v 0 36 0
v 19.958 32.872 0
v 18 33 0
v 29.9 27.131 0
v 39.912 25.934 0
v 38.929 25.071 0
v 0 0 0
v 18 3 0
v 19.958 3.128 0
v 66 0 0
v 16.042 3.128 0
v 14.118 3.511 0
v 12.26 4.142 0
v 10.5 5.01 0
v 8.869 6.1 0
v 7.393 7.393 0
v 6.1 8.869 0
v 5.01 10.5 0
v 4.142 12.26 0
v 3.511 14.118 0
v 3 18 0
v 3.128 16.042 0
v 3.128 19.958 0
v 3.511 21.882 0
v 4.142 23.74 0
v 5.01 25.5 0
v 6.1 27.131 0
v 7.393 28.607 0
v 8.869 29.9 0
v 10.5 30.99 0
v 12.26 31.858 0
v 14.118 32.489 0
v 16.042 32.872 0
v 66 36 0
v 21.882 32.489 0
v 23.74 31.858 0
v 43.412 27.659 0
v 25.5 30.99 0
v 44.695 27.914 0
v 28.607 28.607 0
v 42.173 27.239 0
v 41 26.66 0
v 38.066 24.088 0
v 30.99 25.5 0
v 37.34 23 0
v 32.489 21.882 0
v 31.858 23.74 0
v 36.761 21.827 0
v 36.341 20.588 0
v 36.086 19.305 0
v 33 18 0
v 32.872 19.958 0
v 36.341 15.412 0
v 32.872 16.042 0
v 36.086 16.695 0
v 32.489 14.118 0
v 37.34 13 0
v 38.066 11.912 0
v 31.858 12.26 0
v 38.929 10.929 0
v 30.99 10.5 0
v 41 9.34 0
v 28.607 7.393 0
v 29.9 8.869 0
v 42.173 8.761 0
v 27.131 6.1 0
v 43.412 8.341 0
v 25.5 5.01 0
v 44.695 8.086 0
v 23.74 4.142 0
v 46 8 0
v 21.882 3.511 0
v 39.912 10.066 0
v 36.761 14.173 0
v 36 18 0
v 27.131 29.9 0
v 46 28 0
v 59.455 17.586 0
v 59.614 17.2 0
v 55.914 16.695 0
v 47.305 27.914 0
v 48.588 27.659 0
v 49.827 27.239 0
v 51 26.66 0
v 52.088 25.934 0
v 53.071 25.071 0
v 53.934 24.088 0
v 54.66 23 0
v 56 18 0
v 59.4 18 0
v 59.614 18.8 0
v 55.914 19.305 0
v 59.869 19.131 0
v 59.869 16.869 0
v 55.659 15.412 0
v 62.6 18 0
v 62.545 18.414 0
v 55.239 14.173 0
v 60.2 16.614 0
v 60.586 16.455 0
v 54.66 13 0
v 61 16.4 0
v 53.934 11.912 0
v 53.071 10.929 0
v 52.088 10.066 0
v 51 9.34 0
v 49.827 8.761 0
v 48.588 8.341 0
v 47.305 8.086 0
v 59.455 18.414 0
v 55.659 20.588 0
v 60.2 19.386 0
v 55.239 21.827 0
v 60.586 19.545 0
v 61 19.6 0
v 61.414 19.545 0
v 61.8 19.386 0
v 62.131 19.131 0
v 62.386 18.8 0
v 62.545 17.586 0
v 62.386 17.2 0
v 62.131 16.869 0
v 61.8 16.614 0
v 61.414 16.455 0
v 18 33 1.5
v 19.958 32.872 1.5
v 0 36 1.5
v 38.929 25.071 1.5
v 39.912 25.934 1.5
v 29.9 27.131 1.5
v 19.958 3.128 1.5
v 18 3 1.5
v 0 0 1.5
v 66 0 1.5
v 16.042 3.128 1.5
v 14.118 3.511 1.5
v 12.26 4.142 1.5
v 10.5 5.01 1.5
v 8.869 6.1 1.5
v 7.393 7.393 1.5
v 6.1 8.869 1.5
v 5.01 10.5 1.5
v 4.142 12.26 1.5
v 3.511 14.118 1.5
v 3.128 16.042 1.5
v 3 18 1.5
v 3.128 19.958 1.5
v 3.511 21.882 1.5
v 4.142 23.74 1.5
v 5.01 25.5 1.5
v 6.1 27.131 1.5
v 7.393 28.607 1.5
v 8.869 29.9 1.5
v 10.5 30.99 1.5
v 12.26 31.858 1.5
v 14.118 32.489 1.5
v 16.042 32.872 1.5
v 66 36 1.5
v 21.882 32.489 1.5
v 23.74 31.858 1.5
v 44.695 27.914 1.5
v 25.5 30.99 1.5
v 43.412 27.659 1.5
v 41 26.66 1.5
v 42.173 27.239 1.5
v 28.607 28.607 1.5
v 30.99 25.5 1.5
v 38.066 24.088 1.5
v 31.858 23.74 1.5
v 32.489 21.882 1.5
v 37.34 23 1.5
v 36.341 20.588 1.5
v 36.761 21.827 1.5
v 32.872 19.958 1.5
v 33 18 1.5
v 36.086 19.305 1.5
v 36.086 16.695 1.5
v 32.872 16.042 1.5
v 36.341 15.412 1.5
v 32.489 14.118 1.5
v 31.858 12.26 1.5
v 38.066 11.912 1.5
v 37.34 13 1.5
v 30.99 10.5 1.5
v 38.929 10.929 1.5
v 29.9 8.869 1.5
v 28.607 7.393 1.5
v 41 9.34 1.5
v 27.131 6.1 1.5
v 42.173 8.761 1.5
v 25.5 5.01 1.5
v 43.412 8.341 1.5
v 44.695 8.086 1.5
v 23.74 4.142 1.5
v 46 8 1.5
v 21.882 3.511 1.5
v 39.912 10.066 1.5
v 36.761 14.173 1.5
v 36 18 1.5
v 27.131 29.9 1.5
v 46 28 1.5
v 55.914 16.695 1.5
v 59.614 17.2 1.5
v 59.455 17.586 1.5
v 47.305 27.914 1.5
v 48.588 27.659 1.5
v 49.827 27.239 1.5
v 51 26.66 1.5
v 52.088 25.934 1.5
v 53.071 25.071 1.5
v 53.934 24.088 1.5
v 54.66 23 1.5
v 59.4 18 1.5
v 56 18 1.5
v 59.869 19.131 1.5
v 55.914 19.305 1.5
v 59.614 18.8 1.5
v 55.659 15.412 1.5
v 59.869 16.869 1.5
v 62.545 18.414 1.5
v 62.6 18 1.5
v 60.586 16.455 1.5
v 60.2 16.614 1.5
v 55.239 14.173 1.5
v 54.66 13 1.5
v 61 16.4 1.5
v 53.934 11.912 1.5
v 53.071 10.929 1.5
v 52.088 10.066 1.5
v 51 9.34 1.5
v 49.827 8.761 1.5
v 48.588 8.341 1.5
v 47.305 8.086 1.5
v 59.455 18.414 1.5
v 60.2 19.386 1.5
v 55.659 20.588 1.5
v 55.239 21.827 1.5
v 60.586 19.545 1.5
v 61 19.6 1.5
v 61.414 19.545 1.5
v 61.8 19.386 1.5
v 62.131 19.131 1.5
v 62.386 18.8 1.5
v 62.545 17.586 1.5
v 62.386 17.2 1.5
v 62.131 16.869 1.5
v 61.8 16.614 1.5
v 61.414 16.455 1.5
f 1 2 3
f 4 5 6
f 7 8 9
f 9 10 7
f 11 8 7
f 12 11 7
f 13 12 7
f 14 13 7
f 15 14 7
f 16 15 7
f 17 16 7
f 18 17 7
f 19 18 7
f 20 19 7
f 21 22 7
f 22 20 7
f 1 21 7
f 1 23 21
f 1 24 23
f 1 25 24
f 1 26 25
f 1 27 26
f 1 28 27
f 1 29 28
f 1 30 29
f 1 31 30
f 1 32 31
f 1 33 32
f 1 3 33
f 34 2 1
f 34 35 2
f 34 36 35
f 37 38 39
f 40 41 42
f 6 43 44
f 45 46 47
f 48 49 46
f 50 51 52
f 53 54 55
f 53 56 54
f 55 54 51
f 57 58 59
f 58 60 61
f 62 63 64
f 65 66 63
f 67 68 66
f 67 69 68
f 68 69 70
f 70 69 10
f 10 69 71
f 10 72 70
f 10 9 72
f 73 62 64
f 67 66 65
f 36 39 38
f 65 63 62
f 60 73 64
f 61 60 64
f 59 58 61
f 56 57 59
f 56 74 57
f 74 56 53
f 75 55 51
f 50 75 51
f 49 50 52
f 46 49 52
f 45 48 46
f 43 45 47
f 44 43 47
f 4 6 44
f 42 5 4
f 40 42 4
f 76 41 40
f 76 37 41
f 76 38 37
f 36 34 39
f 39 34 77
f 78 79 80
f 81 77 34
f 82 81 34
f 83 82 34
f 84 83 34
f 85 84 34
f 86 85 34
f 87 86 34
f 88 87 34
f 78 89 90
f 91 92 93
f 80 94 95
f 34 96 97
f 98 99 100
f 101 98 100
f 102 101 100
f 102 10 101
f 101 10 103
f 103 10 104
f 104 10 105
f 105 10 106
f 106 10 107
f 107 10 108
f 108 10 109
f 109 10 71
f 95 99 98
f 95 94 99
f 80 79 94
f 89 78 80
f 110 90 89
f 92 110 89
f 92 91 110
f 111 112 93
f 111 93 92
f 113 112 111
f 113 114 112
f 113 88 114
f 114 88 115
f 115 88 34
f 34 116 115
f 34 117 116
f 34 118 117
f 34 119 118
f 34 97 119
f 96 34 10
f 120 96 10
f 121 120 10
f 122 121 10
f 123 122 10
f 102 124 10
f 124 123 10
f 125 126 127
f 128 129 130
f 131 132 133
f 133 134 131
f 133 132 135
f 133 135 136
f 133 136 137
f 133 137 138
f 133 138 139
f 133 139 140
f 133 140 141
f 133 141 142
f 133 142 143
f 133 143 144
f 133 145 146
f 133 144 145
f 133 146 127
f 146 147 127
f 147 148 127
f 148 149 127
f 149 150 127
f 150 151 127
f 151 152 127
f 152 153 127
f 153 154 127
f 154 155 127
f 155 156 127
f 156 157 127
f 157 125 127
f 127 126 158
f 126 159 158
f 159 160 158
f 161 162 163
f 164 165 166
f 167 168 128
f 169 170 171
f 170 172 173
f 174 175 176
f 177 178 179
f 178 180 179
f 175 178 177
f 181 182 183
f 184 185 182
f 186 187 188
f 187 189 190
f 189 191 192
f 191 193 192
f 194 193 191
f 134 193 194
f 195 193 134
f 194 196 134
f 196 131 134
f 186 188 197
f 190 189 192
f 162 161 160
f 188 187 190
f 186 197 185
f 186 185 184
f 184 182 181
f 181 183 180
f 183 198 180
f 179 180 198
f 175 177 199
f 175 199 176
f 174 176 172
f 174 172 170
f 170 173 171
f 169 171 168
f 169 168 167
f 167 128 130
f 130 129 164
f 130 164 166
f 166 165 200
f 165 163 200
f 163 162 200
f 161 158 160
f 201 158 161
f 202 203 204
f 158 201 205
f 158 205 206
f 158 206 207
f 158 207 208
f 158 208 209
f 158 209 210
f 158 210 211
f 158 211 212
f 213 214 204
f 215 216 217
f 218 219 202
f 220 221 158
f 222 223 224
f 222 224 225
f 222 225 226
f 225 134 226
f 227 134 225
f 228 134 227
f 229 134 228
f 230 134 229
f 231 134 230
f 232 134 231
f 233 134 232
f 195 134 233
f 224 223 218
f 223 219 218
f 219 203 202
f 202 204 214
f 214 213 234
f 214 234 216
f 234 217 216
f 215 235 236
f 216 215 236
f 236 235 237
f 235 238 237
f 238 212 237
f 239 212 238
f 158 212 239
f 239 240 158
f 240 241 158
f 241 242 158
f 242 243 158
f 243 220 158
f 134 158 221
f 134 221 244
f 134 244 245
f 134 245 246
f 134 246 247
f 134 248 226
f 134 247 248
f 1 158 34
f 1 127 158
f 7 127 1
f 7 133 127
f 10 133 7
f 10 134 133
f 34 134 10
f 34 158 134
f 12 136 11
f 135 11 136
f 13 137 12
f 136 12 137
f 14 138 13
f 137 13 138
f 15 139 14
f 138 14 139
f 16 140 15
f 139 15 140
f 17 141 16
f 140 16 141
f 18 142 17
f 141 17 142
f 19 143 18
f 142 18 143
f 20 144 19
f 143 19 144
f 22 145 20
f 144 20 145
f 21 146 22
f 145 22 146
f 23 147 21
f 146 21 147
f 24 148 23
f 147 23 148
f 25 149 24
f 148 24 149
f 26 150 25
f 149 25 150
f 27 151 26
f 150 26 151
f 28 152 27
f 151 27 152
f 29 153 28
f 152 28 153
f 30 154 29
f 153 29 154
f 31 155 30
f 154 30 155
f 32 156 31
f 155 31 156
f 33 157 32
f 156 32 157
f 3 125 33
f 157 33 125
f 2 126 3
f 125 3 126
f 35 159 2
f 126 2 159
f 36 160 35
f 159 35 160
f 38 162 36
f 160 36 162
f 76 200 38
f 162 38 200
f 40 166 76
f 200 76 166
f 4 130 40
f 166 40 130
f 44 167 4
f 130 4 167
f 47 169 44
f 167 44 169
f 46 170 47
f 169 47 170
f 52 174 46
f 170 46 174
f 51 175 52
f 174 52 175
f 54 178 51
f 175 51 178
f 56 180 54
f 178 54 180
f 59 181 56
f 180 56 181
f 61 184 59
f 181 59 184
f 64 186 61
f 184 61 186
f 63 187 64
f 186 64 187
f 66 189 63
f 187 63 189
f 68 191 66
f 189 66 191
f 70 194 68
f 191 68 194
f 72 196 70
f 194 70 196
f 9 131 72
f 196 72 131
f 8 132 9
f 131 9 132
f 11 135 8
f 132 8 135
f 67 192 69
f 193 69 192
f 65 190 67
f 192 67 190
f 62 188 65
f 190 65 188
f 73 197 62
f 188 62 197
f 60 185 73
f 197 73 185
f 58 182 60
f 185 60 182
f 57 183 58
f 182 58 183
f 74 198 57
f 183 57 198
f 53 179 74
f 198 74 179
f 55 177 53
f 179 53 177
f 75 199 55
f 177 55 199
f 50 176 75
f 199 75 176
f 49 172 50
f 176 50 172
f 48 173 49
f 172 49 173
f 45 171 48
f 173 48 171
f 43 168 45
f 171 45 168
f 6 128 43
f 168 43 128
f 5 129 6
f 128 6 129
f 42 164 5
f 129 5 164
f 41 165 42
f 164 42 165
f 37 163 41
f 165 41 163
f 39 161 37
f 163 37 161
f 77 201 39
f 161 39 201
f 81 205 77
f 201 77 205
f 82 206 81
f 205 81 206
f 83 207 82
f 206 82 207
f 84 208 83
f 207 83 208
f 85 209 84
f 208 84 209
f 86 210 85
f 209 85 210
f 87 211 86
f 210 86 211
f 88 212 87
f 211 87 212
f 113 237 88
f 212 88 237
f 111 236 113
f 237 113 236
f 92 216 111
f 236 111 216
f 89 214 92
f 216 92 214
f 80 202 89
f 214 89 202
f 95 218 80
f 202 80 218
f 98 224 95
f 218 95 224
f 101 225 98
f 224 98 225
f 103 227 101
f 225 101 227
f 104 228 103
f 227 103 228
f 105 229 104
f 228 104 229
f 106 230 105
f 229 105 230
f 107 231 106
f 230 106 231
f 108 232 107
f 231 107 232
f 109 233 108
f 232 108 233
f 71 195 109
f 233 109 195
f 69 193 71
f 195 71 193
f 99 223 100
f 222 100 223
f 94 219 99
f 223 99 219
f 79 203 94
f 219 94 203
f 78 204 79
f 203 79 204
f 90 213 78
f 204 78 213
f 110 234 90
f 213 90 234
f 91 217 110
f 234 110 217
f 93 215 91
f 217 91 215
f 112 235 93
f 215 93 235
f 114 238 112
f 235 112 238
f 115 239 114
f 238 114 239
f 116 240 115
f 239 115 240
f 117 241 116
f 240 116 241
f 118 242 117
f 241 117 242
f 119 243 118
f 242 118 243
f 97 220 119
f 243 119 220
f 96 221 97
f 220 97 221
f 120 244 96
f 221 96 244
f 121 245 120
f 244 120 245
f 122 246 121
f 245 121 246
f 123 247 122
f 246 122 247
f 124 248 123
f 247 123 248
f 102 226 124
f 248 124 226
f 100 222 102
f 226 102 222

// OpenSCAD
// Quick test print — one arcade button hole, one encoder hole, one
// M3 screw hole on a thin strip. Same dimensions as faceplate_deck
// but everything else stripped out so it prints in a few minutes.
//
// Goal: verify the three cutout diameters fit their hardware before
// committing to a full faceplate print.

plate_w = 66;
plate_h = 36;
plate_t = 1.5;                // half the production plate (3 mm) — only
                              // needs to be stiff enough to hold the
                              // parts while you check fitment

btn_hole_d   = 30;            // arcade button panel cutout
enc_flange_d = 20;            // rotary encoder flange clearance
screw_d      = 3.2;           // M3 clearance

// 3 mm of material between every hole edge → smallest the strip can
// go without compromising stiffness at 1.5 mm thickness.
btn_cx = 18;                  // 30 mm hole, 3 mm to left edge
enc_cx = 46;                  // 20 mm hole, 3 mm to arcade edge
screw_cx = 61;                // M3 hole, 3 mm to encoder edge

cy = plate_h / 2;             // everything on the horizontal midline

linear_extrude(height = plate_t) difference() {
    square([plate_w, plate_h]);
    translate([btn_cx,   cy]) circle(d=btn_hole_d,   $fn=48);
    translate([enc_cx,   cy]) circle(d=enc_flange_d, $fn=48);
    translate([screw_cx, cy]) circle(d=screw_d,      $fn=24);
}
